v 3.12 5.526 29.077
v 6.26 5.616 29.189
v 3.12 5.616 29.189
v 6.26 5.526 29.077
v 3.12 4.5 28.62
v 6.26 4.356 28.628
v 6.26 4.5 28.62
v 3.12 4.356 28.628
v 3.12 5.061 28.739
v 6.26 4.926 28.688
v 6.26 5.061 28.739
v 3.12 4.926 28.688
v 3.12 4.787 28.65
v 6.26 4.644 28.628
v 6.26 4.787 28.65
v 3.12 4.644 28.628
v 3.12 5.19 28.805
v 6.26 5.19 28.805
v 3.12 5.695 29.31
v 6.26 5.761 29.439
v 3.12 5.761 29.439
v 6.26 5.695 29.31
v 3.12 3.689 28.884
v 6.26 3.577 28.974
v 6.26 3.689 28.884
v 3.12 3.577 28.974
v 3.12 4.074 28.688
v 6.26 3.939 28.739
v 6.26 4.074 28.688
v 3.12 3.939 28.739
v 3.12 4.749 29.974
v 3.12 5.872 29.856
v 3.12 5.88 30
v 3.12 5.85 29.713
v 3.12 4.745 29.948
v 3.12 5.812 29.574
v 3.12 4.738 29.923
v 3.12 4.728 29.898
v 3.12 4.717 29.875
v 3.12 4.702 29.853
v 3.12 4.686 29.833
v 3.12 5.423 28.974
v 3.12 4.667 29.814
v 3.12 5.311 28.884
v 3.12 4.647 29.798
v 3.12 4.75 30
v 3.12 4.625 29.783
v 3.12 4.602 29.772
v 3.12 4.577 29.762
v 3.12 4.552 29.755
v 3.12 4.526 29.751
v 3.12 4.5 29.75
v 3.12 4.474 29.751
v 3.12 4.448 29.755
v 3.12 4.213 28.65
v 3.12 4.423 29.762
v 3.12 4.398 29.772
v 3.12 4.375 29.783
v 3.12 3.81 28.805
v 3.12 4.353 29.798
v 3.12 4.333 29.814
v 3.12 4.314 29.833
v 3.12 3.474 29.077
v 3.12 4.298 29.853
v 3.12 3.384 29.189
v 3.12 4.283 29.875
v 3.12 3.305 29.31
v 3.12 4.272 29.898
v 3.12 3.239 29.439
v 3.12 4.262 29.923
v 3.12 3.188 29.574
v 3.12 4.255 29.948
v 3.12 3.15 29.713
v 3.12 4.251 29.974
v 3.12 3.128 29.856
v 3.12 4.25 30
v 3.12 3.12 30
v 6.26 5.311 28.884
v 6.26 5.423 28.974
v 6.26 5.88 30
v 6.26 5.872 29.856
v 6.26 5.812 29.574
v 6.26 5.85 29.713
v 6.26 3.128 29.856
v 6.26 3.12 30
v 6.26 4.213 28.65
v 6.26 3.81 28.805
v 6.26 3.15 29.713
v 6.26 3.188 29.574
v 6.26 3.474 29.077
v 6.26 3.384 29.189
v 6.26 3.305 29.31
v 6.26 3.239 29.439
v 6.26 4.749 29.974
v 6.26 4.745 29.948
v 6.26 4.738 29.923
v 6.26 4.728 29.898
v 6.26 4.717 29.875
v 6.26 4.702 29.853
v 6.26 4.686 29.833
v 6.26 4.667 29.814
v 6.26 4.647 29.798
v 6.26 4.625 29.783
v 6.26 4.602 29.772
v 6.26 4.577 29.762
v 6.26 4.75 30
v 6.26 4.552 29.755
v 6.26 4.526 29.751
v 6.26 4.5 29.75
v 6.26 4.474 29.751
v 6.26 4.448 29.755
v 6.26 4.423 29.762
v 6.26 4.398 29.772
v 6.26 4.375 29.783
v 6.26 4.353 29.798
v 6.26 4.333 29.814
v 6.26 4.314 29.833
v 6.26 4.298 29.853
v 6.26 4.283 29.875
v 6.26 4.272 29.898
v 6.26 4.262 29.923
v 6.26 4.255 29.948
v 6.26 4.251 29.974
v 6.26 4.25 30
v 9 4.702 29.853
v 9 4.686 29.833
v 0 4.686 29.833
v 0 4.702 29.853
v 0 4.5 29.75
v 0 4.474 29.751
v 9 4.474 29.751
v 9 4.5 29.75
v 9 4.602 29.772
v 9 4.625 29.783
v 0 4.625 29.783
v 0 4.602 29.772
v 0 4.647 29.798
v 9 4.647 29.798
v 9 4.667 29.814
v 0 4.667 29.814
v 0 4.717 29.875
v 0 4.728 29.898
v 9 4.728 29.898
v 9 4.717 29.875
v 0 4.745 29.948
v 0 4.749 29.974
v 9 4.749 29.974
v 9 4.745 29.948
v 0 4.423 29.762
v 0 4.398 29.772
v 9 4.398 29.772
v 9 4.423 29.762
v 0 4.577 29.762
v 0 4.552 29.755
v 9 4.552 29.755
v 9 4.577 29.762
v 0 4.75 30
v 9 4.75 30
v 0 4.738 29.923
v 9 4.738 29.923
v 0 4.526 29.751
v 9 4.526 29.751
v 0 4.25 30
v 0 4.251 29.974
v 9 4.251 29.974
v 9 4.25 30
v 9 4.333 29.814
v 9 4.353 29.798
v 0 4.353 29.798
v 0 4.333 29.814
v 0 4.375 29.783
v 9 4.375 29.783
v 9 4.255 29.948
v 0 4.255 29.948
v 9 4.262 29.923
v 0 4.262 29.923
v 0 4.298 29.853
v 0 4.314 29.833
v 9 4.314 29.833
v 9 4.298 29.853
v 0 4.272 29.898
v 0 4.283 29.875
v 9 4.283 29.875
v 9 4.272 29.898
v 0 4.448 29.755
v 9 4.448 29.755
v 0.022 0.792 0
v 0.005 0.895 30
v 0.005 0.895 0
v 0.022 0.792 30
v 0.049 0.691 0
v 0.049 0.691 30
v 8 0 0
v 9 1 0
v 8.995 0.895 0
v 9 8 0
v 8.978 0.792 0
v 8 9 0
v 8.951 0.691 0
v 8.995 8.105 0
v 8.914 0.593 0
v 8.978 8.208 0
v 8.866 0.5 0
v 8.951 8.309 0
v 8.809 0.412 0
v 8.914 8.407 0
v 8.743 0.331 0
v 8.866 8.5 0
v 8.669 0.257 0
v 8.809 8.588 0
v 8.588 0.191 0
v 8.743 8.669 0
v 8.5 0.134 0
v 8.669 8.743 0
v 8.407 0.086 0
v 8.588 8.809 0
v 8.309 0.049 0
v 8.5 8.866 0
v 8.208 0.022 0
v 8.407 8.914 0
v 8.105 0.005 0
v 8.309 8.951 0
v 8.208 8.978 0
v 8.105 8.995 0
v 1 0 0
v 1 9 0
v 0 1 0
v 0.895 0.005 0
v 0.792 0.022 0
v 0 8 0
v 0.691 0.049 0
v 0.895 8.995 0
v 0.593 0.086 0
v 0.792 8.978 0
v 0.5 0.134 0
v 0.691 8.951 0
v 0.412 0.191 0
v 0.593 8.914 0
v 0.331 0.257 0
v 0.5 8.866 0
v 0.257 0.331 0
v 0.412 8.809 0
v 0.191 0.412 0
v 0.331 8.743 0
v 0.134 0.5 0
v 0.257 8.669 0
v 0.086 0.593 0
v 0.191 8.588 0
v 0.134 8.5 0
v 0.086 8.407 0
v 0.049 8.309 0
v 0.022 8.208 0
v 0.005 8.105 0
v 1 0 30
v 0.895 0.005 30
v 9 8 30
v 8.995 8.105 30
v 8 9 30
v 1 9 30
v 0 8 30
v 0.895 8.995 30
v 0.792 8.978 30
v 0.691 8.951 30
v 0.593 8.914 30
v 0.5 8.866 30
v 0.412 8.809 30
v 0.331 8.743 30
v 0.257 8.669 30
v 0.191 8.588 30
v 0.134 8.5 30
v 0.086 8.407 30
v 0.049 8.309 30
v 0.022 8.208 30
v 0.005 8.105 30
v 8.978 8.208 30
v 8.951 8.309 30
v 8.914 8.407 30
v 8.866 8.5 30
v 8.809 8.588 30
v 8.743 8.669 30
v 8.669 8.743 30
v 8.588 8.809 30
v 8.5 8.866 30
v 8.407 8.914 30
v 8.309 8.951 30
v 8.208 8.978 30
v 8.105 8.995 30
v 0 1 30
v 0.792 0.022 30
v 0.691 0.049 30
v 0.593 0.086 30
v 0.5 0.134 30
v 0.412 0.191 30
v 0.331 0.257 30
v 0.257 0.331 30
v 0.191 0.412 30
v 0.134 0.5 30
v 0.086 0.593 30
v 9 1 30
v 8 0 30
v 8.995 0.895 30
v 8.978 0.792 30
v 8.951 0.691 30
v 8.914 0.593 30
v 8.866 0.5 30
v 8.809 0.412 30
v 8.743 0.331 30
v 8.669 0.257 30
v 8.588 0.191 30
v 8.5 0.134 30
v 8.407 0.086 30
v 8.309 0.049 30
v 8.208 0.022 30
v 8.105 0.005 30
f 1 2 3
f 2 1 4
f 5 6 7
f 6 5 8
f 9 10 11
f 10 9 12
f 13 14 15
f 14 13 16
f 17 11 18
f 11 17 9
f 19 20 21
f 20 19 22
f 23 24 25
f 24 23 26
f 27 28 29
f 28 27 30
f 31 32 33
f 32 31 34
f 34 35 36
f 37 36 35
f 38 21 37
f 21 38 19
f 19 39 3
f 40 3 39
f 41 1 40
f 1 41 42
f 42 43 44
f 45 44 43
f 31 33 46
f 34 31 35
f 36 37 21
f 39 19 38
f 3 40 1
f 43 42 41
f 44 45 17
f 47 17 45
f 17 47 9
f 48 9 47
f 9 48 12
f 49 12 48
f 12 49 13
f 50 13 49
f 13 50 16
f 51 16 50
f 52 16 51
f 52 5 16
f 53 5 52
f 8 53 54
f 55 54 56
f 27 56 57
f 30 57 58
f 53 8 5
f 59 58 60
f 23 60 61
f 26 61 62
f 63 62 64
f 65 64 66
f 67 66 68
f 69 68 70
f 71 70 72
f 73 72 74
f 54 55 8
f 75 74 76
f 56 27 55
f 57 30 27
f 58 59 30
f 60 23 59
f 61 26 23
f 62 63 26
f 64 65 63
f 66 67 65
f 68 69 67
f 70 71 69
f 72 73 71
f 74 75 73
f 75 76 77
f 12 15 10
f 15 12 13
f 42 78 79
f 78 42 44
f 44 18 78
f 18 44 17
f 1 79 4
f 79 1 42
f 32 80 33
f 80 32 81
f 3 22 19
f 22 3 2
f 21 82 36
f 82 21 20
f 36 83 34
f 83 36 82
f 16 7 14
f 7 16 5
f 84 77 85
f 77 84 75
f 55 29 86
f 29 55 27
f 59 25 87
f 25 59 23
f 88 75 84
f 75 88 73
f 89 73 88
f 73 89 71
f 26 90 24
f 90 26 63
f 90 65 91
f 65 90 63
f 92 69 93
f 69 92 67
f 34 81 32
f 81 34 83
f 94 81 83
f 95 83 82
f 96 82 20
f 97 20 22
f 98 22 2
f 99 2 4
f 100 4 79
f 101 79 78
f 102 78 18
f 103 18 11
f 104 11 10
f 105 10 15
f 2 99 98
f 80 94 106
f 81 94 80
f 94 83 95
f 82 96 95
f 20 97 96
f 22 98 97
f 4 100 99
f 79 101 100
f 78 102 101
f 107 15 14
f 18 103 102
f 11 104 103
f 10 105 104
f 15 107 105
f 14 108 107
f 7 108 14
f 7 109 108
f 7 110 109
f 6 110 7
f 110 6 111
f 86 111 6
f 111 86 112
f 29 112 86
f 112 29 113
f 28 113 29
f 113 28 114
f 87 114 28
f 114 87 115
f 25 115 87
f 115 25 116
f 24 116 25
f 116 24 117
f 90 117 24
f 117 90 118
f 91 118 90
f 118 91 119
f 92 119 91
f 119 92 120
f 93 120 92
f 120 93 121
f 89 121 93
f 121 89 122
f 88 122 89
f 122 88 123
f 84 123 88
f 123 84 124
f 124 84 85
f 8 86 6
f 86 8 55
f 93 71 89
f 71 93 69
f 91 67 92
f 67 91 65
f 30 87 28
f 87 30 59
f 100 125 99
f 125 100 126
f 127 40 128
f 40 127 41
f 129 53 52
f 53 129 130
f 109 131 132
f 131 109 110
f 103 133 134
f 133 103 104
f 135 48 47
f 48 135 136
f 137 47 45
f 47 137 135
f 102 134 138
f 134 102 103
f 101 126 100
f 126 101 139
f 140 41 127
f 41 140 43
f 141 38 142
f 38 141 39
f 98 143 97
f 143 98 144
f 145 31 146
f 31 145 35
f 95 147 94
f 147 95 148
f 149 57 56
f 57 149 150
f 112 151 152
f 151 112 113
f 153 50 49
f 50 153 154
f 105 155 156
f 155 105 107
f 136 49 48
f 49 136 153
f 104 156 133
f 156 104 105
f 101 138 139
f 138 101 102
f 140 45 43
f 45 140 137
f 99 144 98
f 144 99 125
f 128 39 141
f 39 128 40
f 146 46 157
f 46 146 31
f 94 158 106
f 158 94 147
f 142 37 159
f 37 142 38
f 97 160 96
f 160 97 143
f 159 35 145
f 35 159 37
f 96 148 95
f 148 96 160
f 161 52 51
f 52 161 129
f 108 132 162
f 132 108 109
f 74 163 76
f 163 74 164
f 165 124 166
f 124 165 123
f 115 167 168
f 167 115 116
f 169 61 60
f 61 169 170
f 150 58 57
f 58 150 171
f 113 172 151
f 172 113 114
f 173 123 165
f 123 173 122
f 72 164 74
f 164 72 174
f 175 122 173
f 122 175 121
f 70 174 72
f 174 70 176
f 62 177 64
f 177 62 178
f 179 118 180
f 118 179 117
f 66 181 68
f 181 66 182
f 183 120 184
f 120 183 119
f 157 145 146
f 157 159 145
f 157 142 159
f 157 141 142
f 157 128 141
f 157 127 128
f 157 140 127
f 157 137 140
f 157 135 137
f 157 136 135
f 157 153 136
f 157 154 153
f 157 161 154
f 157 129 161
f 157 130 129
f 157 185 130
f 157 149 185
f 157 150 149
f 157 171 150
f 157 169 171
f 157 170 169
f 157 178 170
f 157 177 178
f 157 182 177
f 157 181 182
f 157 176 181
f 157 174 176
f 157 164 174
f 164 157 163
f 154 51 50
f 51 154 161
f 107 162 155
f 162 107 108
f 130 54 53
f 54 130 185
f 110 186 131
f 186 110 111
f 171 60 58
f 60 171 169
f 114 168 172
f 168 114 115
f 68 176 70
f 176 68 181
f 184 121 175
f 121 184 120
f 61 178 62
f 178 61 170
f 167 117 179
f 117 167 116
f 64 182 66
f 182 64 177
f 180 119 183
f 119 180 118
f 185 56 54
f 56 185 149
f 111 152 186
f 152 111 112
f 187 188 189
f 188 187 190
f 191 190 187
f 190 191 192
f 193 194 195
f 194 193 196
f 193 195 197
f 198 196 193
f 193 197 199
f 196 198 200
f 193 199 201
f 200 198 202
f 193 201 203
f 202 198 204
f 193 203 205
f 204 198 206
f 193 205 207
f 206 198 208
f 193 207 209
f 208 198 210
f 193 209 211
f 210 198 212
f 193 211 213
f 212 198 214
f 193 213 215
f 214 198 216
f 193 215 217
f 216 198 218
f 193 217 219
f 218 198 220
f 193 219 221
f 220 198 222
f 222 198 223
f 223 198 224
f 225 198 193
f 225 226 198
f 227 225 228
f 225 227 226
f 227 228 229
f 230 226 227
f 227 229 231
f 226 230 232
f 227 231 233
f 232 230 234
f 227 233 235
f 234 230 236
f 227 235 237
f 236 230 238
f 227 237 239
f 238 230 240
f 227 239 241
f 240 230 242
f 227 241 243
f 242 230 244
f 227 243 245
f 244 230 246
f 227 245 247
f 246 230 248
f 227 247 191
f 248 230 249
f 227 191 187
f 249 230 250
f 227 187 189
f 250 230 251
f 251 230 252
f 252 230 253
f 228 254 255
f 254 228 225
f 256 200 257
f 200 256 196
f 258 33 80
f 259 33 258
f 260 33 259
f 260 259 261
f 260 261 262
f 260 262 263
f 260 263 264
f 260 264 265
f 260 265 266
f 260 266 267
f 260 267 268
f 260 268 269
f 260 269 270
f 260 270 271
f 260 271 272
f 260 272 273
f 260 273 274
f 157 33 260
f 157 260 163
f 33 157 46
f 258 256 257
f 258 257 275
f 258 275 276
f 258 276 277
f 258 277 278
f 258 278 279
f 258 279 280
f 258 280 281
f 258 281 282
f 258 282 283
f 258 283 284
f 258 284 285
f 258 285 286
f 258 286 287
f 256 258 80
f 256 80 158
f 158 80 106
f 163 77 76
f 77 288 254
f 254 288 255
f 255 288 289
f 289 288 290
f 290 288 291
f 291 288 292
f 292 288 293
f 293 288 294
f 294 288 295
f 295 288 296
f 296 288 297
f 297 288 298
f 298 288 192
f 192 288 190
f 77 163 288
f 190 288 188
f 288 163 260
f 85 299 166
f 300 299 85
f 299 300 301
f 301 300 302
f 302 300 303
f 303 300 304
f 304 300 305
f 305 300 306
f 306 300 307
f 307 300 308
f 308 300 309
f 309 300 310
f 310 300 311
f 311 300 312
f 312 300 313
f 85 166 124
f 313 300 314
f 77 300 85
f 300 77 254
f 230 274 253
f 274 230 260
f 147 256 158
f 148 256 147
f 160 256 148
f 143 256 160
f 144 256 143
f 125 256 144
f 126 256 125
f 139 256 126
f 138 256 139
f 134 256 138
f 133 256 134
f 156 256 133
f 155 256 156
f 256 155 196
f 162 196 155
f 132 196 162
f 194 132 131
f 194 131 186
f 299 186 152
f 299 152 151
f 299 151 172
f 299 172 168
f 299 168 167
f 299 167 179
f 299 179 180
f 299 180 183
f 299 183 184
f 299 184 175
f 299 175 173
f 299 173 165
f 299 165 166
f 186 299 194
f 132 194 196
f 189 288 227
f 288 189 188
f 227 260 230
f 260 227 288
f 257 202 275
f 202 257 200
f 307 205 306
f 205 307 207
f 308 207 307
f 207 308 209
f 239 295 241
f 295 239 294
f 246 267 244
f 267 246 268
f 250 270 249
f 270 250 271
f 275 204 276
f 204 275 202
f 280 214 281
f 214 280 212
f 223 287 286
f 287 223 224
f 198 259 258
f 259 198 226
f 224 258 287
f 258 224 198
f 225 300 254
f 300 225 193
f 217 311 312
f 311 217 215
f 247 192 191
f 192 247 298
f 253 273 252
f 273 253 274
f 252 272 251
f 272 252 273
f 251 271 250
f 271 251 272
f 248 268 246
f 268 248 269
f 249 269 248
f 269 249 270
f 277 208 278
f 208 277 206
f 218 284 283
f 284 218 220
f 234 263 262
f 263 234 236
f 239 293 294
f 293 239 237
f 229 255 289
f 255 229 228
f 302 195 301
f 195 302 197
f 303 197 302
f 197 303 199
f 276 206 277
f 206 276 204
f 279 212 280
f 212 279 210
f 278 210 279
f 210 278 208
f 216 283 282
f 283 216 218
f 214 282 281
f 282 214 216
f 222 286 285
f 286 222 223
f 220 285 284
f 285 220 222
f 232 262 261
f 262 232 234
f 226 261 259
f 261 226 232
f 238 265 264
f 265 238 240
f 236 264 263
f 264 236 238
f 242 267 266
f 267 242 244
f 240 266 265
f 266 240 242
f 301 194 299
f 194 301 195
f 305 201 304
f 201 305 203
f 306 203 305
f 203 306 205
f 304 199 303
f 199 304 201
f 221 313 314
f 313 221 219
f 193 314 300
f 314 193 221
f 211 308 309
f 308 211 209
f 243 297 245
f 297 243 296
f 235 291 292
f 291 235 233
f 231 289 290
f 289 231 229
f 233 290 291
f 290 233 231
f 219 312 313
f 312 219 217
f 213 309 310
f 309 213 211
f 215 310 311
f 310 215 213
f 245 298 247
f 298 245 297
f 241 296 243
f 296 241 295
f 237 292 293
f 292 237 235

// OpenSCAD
/* [Basic] */

// The distance between the centres of the two soldering holes
span = 10;

// The height of the jig
height = 30;

/* [Fine tuning] */
 
// Diode body diameter
diodeBodyDiameter = 2.76;

// Diode body length
diodeBodyLength = 3.14;

// Diode leg diameter
diodeLegDiameter = 0.5;

// Let's smoooooth those corners
cornerRadius = 1;

// Render quality - Thingiverse is unhappy if you put this too high
quality = 60;

/* [ Hidden ] */

// The acutal width of the jig, taking diode leg diameter into account
width = span - 2 * diodeLegDiameter;

$fn = quality;

print_part();

module print_part() {
    difference () {
        jigBody();
        diodeCutout();
    }
}


module diodeCutout() {
    translate([width/2-diodeBodyDiameter/2,width/2,height])
        rotate([0,90,0]) {
            cylinder(d = diodeBodyDiameter, h = diodeBodyLength);
            translate([0,0,diodeBodyDiameter/2-width/2])
                cylinder(d = diodeLegDiameter, h = span);
        }
}

module jigBody() {
    linear_extrude(height)
        crossSection();
}

module crossSection() {
    hull() {
        translate([cornerRadius,cornerRadius])
            circle(r=cornerRadius);
        translate([width - cornerRadius, cornerRadius])
            circle(r=cornerRadius);
        translate([cornerRadius, width - cornerRadius])
            circle(r=cornerRadius);
        translate([width - cornerRadius, width - cornerRadius])
            circle(r=cornerRadius);
    }
}
